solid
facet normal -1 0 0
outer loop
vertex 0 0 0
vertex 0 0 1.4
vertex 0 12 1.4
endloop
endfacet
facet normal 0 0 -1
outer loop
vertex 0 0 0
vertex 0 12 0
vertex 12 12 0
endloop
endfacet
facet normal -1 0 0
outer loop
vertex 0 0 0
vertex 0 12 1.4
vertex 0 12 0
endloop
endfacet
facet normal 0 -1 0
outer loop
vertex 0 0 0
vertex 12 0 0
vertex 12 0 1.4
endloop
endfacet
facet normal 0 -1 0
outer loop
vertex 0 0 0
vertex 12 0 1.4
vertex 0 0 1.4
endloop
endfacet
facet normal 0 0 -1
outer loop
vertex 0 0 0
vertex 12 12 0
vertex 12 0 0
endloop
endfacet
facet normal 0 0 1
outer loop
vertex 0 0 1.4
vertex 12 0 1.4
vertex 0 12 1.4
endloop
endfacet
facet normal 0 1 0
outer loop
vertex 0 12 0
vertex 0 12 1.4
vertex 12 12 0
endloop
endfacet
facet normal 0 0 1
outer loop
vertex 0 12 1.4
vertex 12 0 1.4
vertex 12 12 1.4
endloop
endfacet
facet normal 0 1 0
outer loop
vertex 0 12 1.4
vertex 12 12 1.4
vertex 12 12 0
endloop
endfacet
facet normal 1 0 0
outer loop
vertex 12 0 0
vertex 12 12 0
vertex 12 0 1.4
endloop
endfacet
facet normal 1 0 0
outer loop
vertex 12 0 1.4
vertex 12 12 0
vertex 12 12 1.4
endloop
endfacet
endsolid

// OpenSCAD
/* Warning, this is a very basic generator with a lot of approximation 
input data : [LQFP, CHA, 12x12x1.4mm, 100, , A, C04-01076A]
generated by com.zoubworld.electronics.cad.model3d.Basic
Date : Sun Feb 15 10:50:49 CET 2026
*/

//body
color("black")
translate([0,0,0])
cube([12.0,12.0,1.4], center=false);
